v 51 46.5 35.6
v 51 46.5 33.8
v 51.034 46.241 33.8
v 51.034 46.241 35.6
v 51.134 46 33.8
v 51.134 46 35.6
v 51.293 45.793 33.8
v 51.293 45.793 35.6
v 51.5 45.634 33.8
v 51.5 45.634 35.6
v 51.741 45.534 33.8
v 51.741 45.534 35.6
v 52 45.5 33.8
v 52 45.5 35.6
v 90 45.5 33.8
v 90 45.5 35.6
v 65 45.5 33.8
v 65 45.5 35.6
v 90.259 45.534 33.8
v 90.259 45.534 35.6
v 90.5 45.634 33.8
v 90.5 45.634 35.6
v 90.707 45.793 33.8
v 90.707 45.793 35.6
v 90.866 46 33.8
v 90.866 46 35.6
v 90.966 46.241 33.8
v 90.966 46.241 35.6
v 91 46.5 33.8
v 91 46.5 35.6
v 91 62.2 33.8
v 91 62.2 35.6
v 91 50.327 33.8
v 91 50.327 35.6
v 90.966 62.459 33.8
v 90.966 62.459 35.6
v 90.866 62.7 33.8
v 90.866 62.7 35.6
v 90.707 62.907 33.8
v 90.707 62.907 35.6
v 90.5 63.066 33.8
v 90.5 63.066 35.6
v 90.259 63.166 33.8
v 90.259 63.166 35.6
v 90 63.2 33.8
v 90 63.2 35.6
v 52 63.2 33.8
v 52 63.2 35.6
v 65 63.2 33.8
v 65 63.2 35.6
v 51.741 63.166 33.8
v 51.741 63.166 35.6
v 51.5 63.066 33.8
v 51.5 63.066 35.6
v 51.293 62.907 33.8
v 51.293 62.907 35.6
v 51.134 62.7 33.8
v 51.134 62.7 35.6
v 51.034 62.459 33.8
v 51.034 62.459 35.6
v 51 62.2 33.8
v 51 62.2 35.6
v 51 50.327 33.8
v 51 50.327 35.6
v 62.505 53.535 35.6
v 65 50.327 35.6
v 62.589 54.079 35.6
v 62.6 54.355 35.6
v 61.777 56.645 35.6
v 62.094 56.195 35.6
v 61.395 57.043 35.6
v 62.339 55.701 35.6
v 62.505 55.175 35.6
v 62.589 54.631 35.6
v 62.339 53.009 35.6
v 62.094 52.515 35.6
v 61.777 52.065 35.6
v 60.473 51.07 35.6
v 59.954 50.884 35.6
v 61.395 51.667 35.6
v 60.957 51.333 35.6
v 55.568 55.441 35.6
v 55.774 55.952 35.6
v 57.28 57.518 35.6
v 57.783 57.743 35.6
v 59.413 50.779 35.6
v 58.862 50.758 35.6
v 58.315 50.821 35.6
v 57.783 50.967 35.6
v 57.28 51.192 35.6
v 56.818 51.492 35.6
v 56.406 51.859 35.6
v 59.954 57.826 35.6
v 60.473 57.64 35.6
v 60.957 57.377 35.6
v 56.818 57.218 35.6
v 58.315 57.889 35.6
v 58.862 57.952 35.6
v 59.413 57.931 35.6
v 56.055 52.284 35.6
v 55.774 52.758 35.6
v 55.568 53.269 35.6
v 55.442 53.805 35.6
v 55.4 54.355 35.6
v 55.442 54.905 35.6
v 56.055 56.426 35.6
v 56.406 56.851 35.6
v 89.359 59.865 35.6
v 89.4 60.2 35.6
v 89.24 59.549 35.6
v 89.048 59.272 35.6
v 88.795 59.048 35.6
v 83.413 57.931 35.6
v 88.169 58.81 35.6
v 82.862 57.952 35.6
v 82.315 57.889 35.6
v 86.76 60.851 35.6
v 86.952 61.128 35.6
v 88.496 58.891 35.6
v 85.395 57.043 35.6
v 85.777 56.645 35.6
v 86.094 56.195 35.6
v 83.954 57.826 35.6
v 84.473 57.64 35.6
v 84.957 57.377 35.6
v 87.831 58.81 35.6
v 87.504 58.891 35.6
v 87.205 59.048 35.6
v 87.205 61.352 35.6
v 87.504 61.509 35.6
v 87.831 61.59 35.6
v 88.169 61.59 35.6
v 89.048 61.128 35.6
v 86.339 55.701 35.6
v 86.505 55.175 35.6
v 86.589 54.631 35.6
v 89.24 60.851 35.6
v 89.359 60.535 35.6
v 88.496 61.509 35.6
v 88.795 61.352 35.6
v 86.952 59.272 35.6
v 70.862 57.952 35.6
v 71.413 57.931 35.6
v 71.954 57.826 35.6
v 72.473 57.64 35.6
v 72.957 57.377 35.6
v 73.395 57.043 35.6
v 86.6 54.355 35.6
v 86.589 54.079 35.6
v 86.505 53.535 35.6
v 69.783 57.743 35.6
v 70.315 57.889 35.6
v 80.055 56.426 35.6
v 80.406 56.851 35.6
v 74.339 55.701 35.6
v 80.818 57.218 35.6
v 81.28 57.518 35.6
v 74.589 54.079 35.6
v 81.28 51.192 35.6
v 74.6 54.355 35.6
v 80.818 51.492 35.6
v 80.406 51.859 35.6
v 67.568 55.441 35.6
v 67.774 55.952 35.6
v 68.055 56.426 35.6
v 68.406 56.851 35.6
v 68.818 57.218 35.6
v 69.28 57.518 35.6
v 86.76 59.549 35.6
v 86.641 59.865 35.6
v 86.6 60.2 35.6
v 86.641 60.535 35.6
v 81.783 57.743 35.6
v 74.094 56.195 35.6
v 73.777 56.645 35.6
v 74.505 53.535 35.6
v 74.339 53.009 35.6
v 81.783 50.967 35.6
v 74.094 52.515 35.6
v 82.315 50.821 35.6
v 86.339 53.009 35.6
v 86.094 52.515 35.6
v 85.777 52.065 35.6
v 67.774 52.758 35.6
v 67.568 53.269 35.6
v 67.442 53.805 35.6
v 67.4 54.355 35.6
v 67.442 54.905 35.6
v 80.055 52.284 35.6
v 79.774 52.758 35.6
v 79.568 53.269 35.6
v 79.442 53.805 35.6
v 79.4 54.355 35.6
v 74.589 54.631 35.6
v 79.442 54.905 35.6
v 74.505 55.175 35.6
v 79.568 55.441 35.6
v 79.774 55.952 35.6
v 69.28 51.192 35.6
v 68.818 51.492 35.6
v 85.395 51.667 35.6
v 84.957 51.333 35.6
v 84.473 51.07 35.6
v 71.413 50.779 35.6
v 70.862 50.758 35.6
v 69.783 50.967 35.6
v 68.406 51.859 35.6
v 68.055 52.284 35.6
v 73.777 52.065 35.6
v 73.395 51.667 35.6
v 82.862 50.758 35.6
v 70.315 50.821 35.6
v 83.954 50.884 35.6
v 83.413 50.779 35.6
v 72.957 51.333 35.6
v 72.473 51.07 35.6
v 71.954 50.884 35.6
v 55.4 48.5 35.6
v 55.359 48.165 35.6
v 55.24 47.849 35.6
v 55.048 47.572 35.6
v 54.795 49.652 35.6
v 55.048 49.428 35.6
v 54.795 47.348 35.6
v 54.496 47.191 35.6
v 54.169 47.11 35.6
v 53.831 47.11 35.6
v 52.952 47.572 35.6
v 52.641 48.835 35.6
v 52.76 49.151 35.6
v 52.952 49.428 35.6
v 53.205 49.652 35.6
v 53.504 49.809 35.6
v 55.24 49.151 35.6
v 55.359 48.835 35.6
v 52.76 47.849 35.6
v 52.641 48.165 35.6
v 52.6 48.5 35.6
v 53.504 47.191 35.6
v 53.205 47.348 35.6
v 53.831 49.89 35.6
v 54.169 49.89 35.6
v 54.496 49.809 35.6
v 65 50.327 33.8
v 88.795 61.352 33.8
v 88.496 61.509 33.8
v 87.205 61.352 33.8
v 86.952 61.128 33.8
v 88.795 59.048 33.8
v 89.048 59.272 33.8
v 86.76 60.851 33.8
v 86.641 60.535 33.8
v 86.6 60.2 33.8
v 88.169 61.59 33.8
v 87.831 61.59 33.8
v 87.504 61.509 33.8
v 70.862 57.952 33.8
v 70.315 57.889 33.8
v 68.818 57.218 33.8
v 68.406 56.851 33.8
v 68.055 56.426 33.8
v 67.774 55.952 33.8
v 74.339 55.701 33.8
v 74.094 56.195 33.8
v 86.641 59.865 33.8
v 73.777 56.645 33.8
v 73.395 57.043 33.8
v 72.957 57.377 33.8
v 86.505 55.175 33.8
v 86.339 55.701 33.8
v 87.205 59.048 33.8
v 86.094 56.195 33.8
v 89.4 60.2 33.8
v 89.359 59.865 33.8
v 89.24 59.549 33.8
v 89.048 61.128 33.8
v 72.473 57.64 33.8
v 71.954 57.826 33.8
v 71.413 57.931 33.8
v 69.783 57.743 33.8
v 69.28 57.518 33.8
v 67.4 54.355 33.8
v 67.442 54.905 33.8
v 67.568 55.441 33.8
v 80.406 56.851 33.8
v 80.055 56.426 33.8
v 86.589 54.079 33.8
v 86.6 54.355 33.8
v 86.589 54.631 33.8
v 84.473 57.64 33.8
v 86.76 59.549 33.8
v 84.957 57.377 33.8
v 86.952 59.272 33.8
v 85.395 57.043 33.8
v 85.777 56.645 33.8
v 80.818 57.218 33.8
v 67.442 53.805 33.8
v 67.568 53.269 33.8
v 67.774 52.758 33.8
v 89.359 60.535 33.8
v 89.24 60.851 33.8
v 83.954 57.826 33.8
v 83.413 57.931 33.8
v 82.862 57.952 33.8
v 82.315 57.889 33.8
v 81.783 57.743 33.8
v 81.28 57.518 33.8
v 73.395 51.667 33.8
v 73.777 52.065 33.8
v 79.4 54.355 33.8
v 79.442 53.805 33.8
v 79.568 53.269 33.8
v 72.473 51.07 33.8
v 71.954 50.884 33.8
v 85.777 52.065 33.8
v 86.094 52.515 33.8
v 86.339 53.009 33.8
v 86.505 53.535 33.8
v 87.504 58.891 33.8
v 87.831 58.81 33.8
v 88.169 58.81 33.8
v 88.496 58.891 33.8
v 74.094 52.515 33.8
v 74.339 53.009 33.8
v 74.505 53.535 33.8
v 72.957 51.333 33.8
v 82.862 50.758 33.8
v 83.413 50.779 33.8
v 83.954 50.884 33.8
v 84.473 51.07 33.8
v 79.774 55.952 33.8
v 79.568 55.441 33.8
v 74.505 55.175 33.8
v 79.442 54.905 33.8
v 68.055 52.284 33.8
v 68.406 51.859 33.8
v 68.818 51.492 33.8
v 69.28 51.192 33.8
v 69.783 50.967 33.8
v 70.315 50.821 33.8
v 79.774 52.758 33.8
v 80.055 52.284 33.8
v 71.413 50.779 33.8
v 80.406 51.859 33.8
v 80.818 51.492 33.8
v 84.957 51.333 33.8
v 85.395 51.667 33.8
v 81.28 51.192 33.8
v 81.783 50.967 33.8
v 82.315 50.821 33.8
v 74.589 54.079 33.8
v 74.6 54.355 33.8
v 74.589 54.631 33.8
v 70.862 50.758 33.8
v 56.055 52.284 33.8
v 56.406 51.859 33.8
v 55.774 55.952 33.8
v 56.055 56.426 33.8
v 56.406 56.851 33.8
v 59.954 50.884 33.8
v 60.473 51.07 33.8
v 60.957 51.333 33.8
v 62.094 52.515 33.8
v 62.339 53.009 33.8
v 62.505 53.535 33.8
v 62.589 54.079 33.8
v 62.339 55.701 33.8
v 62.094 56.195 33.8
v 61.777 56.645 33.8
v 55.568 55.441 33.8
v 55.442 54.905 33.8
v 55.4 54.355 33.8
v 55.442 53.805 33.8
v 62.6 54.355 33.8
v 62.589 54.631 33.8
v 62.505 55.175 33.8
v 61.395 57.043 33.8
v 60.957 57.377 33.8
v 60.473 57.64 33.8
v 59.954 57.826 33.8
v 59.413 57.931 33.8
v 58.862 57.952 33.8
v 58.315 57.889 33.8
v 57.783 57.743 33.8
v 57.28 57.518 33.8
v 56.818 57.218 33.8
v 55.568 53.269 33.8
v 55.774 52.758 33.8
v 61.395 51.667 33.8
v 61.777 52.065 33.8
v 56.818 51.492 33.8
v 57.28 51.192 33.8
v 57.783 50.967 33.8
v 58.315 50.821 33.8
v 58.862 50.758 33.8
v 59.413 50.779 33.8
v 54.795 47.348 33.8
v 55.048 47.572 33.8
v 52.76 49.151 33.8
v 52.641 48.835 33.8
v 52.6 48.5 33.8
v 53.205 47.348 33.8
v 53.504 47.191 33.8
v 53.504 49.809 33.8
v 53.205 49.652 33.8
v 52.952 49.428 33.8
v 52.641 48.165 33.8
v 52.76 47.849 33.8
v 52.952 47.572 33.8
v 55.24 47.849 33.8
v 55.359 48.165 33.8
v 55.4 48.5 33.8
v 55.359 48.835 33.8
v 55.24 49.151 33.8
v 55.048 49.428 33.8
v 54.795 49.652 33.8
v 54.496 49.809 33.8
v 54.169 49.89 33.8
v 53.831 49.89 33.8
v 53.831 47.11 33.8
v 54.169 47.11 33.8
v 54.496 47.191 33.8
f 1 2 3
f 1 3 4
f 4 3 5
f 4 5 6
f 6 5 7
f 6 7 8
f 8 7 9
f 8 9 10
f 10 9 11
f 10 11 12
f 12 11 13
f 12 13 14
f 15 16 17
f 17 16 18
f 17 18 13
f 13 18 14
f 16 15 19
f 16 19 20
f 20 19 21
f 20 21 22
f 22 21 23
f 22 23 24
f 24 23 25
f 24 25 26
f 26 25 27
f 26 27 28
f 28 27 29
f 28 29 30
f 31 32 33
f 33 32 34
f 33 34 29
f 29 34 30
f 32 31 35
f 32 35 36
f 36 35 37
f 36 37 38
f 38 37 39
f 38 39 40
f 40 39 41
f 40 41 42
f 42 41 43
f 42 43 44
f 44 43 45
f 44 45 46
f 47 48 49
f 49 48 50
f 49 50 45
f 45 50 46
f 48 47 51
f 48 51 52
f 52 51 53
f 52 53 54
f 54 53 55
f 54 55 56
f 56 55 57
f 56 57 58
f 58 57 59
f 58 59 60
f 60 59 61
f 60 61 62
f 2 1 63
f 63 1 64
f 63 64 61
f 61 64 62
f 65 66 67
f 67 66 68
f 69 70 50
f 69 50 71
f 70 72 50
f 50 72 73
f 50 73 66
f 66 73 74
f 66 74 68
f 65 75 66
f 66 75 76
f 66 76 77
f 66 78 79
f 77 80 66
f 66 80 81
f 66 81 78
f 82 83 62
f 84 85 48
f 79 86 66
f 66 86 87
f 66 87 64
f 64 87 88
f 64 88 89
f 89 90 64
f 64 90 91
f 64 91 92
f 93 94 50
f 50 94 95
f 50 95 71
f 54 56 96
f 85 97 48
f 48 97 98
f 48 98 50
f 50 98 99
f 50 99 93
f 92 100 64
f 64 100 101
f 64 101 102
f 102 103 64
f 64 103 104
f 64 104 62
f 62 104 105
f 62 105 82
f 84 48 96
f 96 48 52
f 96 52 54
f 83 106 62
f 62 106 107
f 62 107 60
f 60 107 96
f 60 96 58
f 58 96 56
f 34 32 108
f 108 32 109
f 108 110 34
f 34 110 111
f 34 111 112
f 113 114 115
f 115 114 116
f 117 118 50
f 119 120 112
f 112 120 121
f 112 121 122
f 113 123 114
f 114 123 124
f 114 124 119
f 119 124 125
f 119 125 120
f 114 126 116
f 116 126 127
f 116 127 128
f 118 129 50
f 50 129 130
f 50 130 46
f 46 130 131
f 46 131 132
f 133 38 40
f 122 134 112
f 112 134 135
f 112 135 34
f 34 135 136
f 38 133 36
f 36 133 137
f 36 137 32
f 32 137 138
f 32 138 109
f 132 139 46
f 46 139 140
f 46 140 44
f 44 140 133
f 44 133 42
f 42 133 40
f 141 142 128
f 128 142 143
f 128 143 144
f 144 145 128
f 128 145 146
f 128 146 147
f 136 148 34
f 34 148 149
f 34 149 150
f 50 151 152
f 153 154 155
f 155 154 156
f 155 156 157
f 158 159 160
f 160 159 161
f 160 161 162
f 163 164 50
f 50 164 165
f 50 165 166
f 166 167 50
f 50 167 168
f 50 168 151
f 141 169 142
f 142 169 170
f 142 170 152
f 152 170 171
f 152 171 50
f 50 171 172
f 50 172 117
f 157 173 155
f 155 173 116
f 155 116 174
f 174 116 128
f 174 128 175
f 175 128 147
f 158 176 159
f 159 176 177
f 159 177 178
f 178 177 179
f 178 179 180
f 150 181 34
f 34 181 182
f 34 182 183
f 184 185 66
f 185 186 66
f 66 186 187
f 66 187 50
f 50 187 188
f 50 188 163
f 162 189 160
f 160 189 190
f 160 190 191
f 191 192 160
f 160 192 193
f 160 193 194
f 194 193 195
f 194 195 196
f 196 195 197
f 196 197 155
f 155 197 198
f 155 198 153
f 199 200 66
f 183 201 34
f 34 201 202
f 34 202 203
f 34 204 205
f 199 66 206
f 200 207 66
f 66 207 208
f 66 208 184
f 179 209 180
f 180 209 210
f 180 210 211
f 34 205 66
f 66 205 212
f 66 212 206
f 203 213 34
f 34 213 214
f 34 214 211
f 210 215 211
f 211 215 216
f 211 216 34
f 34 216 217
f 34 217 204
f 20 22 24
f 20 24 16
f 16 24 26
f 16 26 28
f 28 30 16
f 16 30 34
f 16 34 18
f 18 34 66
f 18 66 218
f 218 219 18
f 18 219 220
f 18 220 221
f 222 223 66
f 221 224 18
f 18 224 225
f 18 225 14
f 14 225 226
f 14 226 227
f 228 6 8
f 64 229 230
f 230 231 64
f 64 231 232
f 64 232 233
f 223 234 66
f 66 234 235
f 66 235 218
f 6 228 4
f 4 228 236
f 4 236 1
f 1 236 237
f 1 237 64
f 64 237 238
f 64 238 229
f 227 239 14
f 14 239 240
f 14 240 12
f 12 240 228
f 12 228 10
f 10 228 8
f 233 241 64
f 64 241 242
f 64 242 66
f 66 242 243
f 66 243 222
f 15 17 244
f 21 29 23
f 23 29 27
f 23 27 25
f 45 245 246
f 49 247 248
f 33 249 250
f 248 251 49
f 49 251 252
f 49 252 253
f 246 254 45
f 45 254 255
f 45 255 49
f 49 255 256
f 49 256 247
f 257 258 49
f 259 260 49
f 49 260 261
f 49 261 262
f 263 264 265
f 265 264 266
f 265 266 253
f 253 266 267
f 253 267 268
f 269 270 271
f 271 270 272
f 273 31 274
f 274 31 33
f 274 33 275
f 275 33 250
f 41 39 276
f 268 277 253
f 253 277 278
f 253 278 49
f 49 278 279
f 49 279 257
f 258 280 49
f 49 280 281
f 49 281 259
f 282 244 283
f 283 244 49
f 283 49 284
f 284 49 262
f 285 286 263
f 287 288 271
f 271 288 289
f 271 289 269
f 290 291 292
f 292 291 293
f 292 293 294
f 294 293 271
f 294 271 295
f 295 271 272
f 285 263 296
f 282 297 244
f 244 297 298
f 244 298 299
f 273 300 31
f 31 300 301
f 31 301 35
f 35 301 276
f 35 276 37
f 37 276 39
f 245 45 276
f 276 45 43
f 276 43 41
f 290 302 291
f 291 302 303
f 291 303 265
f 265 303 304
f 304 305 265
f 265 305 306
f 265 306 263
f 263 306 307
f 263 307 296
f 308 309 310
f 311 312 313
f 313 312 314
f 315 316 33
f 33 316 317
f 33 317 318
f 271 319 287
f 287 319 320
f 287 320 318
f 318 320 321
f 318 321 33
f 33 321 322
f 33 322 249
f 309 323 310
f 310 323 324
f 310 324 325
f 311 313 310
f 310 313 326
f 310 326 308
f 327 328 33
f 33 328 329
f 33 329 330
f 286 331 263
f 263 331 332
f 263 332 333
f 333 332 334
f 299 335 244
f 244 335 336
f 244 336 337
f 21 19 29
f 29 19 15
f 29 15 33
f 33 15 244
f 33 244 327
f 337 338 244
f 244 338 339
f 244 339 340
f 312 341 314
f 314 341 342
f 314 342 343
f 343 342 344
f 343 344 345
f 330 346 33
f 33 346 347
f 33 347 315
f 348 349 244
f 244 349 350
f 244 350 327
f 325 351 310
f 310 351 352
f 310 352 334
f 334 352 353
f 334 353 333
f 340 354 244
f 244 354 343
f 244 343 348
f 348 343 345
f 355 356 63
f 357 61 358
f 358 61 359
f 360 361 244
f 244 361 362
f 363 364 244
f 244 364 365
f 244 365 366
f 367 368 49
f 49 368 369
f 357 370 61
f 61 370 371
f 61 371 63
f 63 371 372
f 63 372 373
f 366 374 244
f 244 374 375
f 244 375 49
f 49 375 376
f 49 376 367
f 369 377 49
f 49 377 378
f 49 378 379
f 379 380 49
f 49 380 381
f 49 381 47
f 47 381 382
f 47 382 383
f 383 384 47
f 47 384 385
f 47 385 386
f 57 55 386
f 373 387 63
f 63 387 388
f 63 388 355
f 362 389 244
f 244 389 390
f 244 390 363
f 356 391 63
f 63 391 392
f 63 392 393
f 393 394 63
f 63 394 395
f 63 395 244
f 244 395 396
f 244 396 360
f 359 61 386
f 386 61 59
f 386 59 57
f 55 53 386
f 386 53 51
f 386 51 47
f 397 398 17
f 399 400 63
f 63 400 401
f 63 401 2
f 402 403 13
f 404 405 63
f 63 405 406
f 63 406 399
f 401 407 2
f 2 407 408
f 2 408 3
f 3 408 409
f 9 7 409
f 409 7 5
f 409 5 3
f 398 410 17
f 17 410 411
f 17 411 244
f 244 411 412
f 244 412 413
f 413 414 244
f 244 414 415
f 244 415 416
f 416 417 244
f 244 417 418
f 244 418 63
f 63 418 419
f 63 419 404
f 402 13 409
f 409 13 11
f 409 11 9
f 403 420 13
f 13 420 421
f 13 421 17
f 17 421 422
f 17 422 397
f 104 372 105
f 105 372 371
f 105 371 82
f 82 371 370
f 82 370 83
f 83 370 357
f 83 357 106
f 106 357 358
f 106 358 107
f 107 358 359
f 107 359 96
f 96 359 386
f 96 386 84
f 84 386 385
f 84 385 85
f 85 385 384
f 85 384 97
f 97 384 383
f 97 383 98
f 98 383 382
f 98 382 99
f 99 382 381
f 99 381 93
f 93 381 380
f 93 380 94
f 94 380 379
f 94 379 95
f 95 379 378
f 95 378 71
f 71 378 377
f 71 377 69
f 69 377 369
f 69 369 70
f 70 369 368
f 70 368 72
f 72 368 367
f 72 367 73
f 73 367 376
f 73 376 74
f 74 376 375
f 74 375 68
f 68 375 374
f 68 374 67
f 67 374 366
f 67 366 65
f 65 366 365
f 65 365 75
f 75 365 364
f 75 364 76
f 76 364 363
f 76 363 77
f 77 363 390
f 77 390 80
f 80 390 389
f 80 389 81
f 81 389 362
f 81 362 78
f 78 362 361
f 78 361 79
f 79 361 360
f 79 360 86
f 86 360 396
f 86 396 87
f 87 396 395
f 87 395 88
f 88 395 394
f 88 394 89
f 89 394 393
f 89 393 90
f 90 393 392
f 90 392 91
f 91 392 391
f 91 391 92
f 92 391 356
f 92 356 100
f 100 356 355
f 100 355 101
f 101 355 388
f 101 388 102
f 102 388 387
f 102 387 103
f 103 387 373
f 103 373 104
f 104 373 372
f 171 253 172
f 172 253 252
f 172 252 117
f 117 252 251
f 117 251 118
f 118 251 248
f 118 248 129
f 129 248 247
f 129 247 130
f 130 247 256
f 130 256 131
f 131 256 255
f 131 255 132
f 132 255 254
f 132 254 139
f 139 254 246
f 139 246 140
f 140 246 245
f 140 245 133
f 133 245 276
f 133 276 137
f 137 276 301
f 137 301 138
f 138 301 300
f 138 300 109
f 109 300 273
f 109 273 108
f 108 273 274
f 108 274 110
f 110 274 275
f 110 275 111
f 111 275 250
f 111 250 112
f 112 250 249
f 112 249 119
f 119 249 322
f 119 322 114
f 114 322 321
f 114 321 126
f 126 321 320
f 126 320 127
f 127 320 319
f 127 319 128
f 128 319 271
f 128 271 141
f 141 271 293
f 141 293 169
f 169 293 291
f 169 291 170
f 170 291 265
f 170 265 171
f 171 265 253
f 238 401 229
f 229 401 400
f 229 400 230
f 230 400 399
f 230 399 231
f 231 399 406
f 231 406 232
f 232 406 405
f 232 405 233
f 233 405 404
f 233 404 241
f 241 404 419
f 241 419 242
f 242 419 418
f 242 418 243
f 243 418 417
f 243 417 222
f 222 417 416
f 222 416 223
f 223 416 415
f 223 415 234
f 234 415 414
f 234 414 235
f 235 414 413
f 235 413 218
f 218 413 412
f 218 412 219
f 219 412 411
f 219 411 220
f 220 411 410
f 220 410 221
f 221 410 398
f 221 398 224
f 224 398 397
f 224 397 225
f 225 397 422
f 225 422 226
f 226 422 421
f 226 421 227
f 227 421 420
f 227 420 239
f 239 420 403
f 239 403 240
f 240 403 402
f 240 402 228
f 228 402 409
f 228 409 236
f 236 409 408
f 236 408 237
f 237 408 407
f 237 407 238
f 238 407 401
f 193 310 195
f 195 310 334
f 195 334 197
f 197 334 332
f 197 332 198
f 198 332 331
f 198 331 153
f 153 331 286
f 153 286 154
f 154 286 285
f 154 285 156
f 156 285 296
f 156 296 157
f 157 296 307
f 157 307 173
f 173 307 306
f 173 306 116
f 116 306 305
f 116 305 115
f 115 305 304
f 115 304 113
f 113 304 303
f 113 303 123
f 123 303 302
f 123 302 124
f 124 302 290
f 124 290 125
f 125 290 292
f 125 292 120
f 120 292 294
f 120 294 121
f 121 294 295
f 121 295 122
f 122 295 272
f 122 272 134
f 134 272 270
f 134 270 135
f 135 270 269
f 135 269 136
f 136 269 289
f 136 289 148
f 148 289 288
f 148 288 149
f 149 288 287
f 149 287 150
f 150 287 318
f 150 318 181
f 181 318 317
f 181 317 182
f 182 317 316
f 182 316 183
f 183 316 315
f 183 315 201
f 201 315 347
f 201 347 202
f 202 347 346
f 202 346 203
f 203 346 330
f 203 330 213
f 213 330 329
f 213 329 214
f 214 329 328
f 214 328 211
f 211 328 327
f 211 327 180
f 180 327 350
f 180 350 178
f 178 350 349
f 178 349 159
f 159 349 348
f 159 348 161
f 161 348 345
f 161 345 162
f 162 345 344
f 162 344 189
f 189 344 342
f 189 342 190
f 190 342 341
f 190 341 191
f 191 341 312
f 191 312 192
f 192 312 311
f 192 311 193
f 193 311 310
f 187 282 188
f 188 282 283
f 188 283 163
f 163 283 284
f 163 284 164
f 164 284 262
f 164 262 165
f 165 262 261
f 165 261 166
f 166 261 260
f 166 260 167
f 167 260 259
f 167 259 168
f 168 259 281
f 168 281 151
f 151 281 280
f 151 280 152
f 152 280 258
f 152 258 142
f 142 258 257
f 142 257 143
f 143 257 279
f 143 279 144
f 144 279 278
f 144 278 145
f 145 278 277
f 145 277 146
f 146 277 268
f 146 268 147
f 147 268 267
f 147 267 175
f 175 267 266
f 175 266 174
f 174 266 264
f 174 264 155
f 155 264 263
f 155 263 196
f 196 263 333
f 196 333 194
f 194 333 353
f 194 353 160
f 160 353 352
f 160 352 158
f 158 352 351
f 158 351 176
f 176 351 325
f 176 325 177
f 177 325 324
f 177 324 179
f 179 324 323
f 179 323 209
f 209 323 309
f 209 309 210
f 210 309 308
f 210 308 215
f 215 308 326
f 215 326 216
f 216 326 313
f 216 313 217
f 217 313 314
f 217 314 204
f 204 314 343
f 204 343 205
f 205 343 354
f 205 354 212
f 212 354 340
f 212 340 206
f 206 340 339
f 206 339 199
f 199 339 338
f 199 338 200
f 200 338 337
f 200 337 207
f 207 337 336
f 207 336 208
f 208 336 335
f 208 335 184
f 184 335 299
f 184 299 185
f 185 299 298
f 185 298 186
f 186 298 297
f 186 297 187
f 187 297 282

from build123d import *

# Parameters (mm, degrees)
RETAINING_PLATE_START               = 33.8
RETAINING_PLATE_DEPTH               = 1.8
PLUNGERS_AND_M2P5_SCREWS_DEPTH      = 117.372677206
PLUNGERS_AND_M2P5_SCREWS_DEPTH_BACK = 117.372677206
SKETCH_2_R                          = 3.6
SKETCH_2_R_2                        = 1.4


with BuildPart() as part:
    # 草图1 → Retaining_plate (new body)
    with BuildSketch(Plane.XY.offset(RETAINING_PLATE_START)):
        with BuildLine():
            Line((52, 45.5), (90, 45.5))
            ThreePointArc((90, 45.5), (90.707106781, 45.792893219), (91, 46.5))
            Line((91, 46.5), (91, 62.2))
            ThreePointArc((91, 62.2), (90.707106781, 62.907106781), (90, 63.2))
            Line((90, 63.2), (52, 63.2))
            ThreePointArc((52, 63.2), (51.292893219, 62.907106781), (51, 62.2))
            Line((51, 62.2), (51, 46.5))
            ThreePointArc((51, 46.5), (51.292893219, 45.792893219), (52, 45.5))
        make_face()
    extrude(amount=RETAINING_PLATE_DEPTH)

    # 草图2 → Plungers_and_M2p5_screws (cut, two sides: drawn at the far end of the back side and taken through both)
    with BuildSketch(Plane.XY.offset(-PLUNGERS_AND_M2P5_SCREWS_DEPTH_BACK)):
        with Locations((59, 54.355)):
            Circle(SKETCH_2_R)
        with Locations((71, 54.355)):
            Circle(SKETCH_2_R)
        with Locations((83, 54.355)):
            Circle(SKETCH_2_R)
        with Locations((54, 48.5)):
            Circle(SKETCH_2_R_2)
        with Locations((88, 60.2)):
            Circle(SKETCH_2_R_2)
    extrude(amount=PLUNGERS_AND_M2P5_SCREWS_DEPTH + PLUNGERS_AND_M2P5_SCREWS_DEPTH_BACK, mode=Mode.SUBTRACT)


solid = part.part
